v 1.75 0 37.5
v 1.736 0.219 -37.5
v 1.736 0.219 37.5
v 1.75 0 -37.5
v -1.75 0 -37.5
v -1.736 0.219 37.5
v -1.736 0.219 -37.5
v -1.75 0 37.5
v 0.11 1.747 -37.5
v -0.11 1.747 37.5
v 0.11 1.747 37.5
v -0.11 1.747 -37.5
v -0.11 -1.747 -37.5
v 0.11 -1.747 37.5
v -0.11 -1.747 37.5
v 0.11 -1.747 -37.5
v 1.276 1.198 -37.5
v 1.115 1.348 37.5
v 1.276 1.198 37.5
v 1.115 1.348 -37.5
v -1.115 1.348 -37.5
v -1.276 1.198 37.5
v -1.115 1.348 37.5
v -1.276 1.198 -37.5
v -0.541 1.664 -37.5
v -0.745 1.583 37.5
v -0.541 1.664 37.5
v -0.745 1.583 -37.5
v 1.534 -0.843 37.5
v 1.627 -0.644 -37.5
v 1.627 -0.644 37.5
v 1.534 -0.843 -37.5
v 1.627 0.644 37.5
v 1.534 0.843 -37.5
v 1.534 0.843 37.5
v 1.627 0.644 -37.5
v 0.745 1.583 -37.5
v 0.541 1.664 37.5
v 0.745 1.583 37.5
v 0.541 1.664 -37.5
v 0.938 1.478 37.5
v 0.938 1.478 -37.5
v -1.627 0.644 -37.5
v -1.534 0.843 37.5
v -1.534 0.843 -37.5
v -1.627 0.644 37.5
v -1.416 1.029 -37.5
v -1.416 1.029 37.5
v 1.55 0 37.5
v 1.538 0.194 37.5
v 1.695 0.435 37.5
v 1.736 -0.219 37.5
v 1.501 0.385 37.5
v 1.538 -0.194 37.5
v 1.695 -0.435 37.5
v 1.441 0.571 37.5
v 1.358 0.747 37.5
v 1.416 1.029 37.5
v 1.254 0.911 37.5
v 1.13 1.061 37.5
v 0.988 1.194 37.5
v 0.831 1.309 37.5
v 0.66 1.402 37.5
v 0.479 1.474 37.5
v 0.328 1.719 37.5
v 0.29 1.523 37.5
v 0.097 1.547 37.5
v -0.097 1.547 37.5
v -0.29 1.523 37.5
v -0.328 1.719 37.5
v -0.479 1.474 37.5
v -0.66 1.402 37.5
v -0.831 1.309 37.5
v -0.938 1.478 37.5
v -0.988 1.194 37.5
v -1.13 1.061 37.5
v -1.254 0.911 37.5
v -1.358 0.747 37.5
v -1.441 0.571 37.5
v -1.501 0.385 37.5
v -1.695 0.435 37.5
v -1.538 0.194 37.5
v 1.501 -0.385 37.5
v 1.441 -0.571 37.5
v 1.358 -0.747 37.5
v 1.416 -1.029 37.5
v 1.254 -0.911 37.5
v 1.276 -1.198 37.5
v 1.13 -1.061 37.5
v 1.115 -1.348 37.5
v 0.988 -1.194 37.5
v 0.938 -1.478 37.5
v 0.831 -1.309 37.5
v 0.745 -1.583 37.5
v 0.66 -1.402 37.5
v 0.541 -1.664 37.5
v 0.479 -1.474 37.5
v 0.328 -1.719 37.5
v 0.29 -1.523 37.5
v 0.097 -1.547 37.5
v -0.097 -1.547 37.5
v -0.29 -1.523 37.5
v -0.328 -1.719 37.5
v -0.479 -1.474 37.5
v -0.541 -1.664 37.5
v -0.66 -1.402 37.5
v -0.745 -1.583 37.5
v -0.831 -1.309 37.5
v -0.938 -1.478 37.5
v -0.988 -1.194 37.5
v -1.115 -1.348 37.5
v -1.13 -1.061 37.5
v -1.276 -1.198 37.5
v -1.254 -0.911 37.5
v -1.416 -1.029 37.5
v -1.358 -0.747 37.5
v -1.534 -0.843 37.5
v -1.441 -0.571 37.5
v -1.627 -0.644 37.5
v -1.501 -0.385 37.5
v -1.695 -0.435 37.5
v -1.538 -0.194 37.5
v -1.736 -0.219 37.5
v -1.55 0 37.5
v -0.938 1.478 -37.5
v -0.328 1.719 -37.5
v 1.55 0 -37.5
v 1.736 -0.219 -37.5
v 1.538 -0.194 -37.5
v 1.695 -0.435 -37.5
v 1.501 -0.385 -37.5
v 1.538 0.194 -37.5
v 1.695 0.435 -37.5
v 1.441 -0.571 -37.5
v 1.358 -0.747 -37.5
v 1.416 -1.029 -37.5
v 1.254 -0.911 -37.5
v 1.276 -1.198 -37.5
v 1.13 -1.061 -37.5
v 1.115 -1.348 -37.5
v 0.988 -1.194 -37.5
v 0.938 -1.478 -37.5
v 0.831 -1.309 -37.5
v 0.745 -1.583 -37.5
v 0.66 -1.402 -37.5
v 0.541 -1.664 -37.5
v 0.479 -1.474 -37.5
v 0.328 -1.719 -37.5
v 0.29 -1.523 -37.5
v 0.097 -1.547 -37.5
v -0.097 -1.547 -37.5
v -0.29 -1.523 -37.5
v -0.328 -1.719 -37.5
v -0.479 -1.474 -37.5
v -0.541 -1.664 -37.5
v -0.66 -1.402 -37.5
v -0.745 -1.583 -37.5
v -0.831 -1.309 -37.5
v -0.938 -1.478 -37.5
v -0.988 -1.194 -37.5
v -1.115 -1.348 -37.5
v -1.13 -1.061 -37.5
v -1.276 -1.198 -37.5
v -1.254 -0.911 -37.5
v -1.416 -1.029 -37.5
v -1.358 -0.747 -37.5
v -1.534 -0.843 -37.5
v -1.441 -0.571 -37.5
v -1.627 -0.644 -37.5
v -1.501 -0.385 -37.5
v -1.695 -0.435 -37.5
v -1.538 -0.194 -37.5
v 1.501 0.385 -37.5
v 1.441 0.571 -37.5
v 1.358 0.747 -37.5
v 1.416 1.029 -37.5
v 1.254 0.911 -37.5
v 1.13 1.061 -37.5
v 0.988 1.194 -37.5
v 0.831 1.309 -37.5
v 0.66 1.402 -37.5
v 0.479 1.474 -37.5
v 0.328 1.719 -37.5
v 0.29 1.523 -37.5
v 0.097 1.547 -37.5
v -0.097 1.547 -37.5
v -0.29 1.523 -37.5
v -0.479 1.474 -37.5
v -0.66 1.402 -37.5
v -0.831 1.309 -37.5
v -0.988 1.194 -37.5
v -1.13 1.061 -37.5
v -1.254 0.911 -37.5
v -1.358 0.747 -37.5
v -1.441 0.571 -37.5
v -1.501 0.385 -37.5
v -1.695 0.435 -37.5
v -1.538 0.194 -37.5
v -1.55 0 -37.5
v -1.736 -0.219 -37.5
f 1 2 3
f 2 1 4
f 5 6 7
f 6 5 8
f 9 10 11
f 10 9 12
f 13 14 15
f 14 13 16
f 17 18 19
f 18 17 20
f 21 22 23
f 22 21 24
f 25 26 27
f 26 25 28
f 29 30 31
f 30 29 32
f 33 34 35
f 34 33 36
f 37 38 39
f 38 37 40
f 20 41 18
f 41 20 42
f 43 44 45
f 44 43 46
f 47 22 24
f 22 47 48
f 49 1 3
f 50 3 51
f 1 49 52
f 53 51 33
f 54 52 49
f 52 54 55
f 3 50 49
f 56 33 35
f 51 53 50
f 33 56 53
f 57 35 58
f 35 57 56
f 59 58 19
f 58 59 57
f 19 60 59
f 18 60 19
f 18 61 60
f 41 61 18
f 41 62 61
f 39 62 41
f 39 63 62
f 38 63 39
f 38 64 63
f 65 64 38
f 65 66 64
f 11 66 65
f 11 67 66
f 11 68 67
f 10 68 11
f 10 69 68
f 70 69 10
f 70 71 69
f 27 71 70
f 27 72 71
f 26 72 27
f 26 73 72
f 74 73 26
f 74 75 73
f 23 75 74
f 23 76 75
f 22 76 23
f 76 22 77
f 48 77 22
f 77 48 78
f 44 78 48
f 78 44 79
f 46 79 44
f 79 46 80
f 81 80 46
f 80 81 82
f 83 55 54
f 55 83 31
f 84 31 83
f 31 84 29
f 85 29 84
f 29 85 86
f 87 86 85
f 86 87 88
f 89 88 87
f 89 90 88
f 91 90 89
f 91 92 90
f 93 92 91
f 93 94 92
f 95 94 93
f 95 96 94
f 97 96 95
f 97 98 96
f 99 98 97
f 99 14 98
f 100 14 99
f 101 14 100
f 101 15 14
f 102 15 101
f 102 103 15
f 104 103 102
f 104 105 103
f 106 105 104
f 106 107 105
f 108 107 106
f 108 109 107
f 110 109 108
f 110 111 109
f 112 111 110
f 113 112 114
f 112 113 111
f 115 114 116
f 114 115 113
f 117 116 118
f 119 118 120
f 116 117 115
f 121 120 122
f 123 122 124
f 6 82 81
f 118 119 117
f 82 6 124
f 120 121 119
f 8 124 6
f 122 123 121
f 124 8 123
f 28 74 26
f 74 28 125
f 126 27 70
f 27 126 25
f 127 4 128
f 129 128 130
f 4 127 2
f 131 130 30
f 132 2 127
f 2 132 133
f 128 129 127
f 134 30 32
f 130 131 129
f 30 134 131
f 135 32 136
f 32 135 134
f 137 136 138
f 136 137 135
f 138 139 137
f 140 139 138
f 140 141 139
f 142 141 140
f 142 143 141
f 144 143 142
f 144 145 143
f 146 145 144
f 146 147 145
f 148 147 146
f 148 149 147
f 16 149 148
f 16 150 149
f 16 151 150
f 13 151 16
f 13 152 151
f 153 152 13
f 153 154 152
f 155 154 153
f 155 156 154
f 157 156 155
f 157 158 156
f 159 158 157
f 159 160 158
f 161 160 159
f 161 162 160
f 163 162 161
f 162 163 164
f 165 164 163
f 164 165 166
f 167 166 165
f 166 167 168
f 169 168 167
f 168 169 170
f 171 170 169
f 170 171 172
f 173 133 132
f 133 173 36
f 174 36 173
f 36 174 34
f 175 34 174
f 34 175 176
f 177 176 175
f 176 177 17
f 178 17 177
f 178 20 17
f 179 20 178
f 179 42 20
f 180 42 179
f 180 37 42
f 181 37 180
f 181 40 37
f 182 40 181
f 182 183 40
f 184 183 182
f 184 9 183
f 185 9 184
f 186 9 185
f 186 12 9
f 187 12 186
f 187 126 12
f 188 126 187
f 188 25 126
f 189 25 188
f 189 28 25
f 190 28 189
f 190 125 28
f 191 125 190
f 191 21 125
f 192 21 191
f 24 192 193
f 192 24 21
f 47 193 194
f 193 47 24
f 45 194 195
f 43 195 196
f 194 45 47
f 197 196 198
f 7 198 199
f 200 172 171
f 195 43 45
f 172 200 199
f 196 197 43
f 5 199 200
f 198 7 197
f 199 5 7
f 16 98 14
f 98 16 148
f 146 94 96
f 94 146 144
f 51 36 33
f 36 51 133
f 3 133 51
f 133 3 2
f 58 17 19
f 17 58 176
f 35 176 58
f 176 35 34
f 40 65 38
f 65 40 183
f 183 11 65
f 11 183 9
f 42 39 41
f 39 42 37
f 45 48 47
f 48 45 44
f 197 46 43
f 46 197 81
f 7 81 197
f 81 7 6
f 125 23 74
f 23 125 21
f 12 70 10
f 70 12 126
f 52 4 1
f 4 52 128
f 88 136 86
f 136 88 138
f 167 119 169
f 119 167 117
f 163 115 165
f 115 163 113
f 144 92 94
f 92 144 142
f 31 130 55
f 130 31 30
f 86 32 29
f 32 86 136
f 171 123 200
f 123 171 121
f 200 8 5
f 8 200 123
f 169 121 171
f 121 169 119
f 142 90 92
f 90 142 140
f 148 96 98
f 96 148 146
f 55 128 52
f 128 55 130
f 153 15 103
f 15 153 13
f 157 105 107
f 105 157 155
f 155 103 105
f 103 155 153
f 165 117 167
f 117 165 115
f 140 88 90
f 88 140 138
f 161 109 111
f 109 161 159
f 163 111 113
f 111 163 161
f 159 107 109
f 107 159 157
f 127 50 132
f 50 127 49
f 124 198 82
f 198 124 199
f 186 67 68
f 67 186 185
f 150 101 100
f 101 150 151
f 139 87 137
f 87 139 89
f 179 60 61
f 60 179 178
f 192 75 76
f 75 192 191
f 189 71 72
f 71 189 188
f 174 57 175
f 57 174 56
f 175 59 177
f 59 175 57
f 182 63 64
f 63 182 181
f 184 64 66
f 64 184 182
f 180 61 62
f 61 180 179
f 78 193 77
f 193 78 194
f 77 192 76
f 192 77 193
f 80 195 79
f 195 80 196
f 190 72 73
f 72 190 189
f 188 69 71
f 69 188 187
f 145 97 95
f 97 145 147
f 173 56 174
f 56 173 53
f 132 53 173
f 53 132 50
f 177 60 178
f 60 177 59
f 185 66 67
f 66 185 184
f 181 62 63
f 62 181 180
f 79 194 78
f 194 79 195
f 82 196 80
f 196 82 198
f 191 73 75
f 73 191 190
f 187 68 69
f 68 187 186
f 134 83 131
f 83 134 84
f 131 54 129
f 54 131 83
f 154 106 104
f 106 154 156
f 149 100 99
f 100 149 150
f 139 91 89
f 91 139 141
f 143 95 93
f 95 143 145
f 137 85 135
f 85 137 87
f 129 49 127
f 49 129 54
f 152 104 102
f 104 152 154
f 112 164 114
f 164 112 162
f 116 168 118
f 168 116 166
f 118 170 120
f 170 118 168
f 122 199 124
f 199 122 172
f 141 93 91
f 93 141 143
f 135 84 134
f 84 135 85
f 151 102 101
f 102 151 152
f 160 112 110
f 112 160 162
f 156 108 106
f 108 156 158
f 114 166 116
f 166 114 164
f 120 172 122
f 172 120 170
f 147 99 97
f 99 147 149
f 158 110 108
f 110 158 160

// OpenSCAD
$fn = 50;


difference() {
	union() {
		translate(v = [0, 0, -37.5000000000]) {
			cylinder(h = 75, r = 1.7500000000);
		}
	}
	union() {
		translate(v = [0, 0, -100.0000000000]) {
			cylinder(h = 200, r = 1.5500000000);
		}
	}
}
